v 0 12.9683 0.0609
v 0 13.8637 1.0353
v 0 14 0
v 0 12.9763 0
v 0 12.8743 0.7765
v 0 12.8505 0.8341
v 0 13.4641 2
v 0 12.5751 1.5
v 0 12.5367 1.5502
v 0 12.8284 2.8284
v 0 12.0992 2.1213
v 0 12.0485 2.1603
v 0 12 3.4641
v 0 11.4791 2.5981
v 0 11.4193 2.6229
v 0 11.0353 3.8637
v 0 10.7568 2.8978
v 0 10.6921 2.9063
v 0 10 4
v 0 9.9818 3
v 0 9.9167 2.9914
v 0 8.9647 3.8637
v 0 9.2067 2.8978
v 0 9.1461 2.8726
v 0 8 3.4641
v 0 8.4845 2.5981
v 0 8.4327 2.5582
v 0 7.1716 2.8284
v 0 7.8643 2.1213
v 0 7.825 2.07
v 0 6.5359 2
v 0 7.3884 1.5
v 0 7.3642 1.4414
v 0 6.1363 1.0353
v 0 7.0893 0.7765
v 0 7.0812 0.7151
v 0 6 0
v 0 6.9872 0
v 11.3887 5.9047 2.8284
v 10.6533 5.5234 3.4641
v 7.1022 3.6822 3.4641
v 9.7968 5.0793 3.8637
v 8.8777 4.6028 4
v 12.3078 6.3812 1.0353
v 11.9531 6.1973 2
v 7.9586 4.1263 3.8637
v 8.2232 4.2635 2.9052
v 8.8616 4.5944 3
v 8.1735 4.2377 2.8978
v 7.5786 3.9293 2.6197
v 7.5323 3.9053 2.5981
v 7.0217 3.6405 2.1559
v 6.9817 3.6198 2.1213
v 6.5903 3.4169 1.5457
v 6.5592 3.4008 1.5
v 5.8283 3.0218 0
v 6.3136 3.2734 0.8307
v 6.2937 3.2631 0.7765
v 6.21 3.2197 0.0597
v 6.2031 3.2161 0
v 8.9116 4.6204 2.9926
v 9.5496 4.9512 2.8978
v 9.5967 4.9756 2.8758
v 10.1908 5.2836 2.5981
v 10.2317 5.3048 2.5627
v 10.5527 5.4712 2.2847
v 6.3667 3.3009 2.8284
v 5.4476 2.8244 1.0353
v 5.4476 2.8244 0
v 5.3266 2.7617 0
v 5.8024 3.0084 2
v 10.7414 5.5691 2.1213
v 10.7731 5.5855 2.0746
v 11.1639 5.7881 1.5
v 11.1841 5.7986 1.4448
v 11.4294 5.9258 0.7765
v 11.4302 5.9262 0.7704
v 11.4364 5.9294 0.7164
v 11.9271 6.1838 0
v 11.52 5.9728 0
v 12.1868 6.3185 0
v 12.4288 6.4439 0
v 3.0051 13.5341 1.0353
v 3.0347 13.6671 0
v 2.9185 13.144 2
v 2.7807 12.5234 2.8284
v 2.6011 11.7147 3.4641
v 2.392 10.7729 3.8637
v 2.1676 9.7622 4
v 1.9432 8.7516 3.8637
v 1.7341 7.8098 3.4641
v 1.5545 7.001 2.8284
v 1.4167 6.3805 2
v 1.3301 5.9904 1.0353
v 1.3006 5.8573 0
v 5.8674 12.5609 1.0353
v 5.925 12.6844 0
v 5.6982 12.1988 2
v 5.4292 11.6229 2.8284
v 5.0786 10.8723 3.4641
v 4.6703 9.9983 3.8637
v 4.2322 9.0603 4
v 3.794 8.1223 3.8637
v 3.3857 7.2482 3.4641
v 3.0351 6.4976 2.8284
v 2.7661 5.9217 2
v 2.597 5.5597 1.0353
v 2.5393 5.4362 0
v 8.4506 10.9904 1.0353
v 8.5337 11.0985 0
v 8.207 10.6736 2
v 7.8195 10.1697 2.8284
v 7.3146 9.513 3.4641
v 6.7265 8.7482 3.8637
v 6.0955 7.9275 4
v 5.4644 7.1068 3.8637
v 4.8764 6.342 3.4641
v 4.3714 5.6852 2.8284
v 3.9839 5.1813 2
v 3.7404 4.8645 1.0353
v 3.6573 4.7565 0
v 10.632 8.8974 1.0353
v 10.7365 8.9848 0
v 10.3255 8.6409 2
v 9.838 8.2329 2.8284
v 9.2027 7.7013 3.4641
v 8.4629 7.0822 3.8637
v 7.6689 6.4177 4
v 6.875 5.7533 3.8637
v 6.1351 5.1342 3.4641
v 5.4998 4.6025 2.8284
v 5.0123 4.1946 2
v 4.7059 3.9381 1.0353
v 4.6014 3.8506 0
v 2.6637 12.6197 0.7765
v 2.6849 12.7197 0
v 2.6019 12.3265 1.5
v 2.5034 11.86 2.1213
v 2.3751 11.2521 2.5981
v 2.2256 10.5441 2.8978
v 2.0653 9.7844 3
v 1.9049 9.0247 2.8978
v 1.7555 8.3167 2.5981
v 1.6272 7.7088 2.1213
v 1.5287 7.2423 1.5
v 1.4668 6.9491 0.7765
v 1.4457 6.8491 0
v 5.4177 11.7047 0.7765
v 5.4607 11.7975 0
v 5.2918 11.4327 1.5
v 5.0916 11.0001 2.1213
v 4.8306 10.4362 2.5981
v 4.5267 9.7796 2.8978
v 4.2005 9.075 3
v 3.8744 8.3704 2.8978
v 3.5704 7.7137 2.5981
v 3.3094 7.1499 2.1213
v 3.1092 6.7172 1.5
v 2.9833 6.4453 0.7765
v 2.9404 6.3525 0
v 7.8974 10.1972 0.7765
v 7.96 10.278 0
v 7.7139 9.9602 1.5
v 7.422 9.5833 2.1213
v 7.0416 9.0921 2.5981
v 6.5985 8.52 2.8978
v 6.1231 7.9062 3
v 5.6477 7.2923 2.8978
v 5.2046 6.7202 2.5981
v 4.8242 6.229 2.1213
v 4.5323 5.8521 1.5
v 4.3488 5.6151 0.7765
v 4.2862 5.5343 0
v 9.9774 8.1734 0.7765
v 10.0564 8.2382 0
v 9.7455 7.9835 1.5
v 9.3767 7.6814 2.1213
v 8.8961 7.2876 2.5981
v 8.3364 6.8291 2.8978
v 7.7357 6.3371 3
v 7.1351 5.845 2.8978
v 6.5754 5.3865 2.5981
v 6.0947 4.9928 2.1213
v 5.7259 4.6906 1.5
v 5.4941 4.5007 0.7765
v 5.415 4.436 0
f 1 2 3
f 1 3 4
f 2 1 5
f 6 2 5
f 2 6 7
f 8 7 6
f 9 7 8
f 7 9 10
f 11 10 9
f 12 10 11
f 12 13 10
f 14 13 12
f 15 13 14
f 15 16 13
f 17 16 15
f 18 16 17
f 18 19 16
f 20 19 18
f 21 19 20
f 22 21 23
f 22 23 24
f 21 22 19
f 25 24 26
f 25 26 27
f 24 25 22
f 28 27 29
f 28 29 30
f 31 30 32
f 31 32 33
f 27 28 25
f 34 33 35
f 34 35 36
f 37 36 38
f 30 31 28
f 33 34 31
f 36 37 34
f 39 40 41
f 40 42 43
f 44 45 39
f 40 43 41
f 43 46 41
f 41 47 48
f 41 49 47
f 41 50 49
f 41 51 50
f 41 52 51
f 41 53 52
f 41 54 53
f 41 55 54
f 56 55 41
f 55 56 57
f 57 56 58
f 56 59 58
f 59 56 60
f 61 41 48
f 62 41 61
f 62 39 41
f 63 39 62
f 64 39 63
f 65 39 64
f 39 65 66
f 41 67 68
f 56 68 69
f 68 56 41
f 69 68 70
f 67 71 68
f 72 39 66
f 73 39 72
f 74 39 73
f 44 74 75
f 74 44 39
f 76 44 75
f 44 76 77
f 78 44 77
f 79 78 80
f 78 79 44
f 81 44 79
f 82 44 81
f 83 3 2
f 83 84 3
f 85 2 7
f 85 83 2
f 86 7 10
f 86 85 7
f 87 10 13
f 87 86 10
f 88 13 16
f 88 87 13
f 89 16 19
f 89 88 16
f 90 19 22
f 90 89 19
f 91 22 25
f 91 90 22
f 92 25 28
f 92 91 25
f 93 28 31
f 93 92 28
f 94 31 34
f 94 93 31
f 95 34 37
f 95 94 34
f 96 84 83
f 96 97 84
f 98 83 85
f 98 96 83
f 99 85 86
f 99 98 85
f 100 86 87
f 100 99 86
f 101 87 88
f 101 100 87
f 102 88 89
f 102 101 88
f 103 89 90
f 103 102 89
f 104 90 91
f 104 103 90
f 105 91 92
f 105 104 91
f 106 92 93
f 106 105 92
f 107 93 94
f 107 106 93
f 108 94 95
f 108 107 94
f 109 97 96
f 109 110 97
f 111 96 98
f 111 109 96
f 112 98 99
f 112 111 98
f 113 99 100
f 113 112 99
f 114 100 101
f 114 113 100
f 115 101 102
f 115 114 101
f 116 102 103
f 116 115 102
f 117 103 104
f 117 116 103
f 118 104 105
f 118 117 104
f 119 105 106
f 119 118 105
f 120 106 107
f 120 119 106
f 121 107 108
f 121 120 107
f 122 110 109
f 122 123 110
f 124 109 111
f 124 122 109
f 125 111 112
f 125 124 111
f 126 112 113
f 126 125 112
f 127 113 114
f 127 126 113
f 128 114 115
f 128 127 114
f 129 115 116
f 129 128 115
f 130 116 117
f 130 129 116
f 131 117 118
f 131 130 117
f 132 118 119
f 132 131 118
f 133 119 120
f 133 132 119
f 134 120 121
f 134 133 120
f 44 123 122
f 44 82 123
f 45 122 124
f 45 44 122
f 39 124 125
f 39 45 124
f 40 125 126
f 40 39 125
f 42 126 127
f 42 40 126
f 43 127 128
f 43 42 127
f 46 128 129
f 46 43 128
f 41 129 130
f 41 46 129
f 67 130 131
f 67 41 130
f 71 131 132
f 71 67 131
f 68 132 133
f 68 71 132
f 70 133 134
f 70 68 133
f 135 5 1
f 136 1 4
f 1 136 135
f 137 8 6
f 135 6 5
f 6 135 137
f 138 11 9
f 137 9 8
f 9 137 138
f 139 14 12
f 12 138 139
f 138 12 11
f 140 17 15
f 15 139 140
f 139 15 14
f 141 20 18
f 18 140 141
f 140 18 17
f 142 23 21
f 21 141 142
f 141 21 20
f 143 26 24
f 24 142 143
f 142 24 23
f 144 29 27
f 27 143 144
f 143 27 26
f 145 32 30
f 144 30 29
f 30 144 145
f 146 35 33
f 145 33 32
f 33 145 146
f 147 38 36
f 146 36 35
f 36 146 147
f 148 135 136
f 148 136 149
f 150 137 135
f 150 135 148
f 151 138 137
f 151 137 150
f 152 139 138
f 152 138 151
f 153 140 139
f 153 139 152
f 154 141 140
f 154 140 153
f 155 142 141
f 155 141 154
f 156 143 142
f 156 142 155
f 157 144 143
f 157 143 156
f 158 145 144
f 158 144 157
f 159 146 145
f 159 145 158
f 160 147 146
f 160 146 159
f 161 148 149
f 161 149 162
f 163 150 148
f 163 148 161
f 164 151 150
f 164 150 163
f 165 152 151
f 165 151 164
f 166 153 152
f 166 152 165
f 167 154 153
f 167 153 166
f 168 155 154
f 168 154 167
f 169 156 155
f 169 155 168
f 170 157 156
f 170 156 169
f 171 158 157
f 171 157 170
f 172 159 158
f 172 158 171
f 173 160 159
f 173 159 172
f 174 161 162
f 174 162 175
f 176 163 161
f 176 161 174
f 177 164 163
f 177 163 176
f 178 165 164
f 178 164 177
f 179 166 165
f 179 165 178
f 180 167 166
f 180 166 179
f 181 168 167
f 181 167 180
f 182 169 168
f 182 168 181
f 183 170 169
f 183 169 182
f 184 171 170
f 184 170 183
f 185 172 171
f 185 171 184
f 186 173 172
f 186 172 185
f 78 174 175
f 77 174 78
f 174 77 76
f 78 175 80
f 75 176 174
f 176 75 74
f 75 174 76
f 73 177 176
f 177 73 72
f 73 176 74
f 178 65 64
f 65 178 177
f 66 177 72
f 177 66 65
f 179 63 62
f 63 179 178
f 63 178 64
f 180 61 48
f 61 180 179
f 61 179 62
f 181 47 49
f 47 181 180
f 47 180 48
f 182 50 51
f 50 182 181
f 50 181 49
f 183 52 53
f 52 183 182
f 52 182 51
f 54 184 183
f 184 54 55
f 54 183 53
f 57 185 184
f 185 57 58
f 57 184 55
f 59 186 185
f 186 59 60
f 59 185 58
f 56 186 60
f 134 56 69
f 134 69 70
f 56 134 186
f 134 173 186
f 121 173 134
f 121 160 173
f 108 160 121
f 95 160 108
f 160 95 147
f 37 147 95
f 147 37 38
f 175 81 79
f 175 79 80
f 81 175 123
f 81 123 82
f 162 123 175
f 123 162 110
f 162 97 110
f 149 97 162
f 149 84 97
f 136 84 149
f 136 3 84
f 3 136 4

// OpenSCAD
// file: ../build_environments.scad
// build_environments.scad: modules to build level sections
//

module pool(diameter=10.0, wall_height=2.0, step_width=3.0, connections=[])
{
    difference() {
        union() {
        difference() {
            cylinder(h=0.5,r1=diameter+step_width,r2=diameter+step_width,$fn=48);
            translate([0,0,-0.1])
                cylinder(h=0.7,r1=diameter,r2=diameter,$fn=48);
        }
        difference() {
            cylinder(h=wall_height,r1=diameter+step_width+1.0,r2=diameter+step_width+1.0,$fn=48);
            translate([0,0,-0.1])
                cylinder(h=wall_height+0.2,r1=diameter+step_width,r2=diameter+step_width,$fn=48);
        }
        }
    
        for (c = connections)
        {
            rotate([0,90,0]) {
                angle = atan2(c[1],c[0]);
                rotate([-angle,0,0]) {
                    cylinder(h=diameter+5.0,r1=c[2],r2=c[2],$fn=48);
                }
            }
        }
    }
}

module straight(length=10.0, width=2.0, dy1=0.0, dy2=0.0, dz=0.0)
{
    dims = [0, 0, 0, 0, 0, (dz/length)];
    matrix = [
        [ 1, dims[0], dims[1], 0 ],
        [ dims[2], 1, dims[4], 0 ],
        [ dims[5], dims[3], 1, 0 ],
        [ 0, 0, 0, 1 ]
    ];
    multmatrix(matrix)
    difference() {
        translate([dy1,0,0])
        union() {
            rotate([0,90,0]) {
                difference() {
                    cylinder(h=(length-dy1-dy2),r1=width+1.0,r2=width+1.0,$fn=24);
                    translate([0,0,-0.1])
                        cylinder(h=(length-dy1-dy2+0.2),r1=width,r2=width,$fn=24);
                }
                difference() {
                    cylinder(h=1.0,r1=width+2.0,r2=width+2.0,$fn=24);
                    translate([0,0,-0.1])
                        cylinder(h=1.2,r1=width,r2=width,$fn=24);
                }
                translate([0,0,(length-dy1-dy2)-1.0]) {
                    difference() {
                        cylinder(h=1.0,r1=width+2.0,r2=width+2.0,$fn=24);
                        translate([0,0,-0.1])
                            cylinder(h=1.2,r1=width,r2=width,$fn=24);
                    }
                }
            }
        }
        translate([0,0,-(2*width+4.0)/2])
            cube([3*length,3*length,2*width+4.0],center=true);
    }
}

module curve(p0=[0,0], center=[0,0], dir=1, angle=0.0, width=2.0)
{
    radius = sqrt((p0[0]-center[0])*(p0[0]-center[0]) + (p0[1]-center[1])*(p0[1]-center[1]));
    if (dir == 0) {
        difference() {
            rotate([0,0,-90])
            difference() {
                rotate_extrude(angle = angle, convexity = 10, $fn=32)
                    translate([radius, 0, 0])
                        circle(r = width+1.0,$fn=24);
                rotate([0,0,-1.0])
                    rotate_extrude(angle = angle+2.0, convexity = 10, $fn=32)
                        translate([radius, 0, 0])
                            circle(r = width,$fn=24);
            }
            translate([0,0,-(2*width+4.0)/2])
                cube([5*radius,5*radius,2*width+4.0],center=true);
        }
    }
    else {
        difference() {
            rotate([0,0,90])
            difference() {
                rotate_extrude(angle = -angle, convexity = 10, $fn=32)
                    translate([radius, 0, 0])
                        circle(r = width+1.0,$fn=24);
                rotate([0,0,1.0])
                    rotate_extrude(angle = -angle-2.0, convexity = 10, $fn=32)
                        translate([radius, 0, 0])
                            circle(r = width,$fn=24);
            }
            translate([0,0,-(2*width+4.0)/2])
                cube([5*radius,5*radius,2*width+4.0],center=true);
        }
    }

}

// test pool
//pool(diameter=12.0000, wall_height=3.0000, step_width=3.0000, connections=[[0.0000,-26.0000,2.0000], [23.6074,0.0000,2.0000]]);

// test straight, slope
//straight(length=26.0000, width=2.0000, dy1=11.8322, dy2=6.7082, dz=0.0000);
//straight(length=29.1549, width=12.0000, dy1=0.0000, dy2=0.0000, dz=-15.0000);

// test curve
//curve(p0=[23.6074, 0.0000], center=[23.6074, 5.0000], dir=0, angle=60.1011, width=2.0000);
//curve(p0=[33.6426, 12.4219], center=[37.9771, 9.9295], dir=1, angle=120.4627, width=2.0000);
// main file
use <../build_environments.scad>;
curve(p0=[29.9138, -2.5339], center=[32.3340, -12.2366], dir=1, angle=62.5947, width=3.0000);
